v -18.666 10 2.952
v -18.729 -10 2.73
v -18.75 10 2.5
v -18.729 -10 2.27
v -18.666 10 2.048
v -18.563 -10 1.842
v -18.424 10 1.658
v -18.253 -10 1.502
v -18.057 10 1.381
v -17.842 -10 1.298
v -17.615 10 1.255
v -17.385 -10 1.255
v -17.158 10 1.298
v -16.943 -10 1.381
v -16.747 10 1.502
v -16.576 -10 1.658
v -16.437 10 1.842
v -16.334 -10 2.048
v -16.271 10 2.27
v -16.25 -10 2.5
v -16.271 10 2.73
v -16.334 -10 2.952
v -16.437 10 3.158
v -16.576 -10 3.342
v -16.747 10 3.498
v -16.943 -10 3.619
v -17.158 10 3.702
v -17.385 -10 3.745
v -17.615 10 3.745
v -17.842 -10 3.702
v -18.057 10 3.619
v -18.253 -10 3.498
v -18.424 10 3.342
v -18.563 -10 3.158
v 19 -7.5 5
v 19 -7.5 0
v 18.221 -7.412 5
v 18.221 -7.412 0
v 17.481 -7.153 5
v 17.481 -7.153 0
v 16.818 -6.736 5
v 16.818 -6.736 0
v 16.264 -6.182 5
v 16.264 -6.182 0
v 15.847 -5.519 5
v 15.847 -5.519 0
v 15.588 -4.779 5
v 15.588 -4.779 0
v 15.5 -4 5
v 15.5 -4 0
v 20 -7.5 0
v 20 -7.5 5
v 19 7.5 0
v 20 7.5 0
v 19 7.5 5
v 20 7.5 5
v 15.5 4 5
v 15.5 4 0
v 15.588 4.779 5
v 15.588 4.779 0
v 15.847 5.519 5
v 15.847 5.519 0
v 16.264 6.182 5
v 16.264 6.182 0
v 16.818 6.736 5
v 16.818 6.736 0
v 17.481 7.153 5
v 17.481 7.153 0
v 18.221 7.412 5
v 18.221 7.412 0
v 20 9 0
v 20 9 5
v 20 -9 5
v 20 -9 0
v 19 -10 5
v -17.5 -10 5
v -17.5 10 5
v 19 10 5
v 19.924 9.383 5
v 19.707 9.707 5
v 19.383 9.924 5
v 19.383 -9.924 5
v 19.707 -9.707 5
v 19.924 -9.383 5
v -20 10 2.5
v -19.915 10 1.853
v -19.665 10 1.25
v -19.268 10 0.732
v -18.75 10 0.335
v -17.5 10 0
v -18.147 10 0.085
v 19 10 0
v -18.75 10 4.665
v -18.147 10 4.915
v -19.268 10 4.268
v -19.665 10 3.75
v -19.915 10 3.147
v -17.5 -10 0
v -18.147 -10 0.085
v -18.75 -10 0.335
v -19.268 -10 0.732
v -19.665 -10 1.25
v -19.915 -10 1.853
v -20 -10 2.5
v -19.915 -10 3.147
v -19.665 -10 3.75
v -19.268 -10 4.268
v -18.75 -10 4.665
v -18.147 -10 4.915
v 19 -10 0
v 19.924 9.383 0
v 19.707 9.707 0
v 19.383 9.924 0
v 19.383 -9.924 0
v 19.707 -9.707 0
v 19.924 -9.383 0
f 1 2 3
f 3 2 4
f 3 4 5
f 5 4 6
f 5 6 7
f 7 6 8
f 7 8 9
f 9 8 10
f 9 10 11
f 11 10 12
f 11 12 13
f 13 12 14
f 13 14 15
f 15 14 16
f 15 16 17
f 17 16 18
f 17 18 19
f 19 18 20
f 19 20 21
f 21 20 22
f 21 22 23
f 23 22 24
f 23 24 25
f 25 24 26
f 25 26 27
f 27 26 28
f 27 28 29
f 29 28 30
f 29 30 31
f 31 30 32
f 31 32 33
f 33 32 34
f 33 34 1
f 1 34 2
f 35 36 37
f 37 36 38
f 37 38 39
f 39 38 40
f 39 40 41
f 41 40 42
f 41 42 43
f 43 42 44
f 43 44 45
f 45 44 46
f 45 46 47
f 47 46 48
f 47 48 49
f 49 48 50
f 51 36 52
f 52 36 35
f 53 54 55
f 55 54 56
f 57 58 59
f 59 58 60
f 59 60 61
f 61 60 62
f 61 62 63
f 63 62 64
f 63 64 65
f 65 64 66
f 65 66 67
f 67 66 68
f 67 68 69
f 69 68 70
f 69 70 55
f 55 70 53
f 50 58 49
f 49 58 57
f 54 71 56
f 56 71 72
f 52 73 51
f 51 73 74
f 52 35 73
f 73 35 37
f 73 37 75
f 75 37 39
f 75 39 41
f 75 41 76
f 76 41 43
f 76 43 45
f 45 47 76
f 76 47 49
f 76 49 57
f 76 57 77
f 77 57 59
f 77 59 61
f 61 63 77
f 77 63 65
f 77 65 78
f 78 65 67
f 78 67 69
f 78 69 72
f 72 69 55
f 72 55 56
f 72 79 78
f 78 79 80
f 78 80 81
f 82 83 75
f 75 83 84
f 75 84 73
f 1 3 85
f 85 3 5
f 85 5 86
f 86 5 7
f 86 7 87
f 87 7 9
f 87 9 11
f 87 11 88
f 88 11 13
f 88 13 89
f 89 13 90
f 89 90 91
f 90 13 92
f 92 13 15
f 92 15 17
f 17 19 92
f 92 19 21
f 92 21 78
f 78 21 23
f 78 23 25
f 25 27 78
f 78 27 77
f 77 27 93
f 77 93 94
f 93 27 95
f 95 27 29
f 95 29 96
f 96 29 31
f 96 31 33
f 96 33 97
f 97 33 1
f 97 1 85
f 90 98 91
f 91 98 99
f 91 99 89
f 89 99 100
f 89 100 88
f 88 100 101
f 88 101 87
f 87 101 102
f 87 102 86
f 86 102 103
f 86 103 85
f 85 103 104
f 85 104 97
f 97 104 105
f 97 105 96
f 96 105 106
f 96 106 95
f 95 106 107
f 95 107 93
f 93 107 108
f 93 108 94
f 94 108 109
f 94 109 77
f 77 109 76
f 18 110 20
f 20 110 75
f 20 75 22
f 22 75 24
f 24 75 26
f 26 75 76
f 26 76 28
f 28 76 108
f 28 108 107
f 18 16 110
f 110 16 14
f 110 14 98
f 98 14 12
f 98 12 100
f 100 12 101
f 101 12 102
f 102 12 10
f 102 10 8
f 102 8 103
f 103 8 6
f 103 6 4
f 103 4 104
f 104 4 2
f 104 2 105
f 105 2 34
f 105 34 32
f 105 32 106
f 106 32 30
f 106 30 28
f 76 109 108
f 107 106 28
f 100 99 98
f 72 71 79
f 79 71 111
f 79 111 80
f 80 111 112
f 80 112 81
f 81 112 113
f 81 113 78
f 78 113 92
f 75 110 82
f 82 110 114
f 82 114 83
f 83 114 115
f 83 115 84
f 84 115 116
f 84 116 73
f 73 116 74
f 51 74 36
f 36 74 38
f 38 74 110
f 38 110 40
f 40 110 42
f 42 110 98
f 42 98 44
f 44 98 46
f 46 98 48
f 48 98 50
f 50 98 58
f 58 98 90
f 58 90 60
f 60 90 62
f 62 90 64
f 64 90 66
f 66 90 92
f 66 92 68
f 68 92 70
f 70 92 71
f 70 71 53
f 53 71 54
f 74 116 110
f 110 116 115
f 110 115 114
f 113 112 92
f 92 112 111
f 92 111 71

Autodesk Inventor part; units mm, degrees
ref_plane "YZ Plane" through (0, 0, 0) normal (1, 0, 0) x (0, 1, 0)
ref_plane "XZ Plane" through (0, 0, 0) normal (0, 1, 0) x (-1, 0, 0)
ref_plane "XY Plane" through (0, 0, 0) normal (0, 0, 1) x (1, 0, 0)
sketch "Boceto1" plane through (0, 0, 0) normal (0, 0, 1) x (1, 0, 0)
  line L0 (19, -10.5) -> (-20.5, -10.5) projected
  arc A0 (19, -10.5) -> (20.5, -9) centre (19, -9) ccw projected
  line L1 (20.5, 9) -> (20.5, -9) projected
  arc A1 (20.5, 9) -> (19, 10.5) centre (19, 9) ccw projected
  line L2 (-20.5, 10.5) -> (19, 10.5) projected
  line L3 (-20.5, -10.5) -> (-20.5, 10.5) projected
  line L4 (-21, -11) -> (19, -11)
  arc A2 (19, -11) -> (21, -9) centre (19, -9) ccw
  line L5 (21, -9) -> (21, 9)
  arc A3 (21, 9) -> (19, 11) centre (19, 9) ccw
  line L6 (19, 11) -> (-21, 11)
  line L7 (-21, 11) -> (-21, -11)
  spline S0 degree 3 poles (-19.1456, -15) (-19.0838, -15) (-18.9941, -14.9843) (-18.7809, -14.9428) (-18.6401, -14.9132) (-18.3299, -14.8682) (-18.1603, -14.854) (-18, -14.854) (-17.8397, -14.854) (-17.6701, -14.8682) (-17.3599, -14.9132) (-17.2191, -14.9428) (-17.0059, -14.9843) (-16.9162, -15) (-16.8544, -15) knots 0.670558 0.670558 0.670558 0.670558 0.714606 0.714606 0.762709 0.762709 0.810813 0.810813 0.810813 0.858917 0.858917 0.907021 0.907021 0.951069 0.951069 0.951069 0.951069 projected
  line L8 (-16.75, -15) -> (-19.25, -15) projected
  line L9 (-16.75, -15) -> (-19.25, -15) projected
  spline S1 degree 3 poles (-19.1456, -15) (-19.0838, -15) (-18.9941, -14.9843) (-18.7809, -14.9428) (-18.6401, -14.9132) (-18.3299, -14.8682) (-18.1603, -14.854) (-18, -14.854) (-17.8397, -14.854) (-17.6701, -14.8682) (-17.3599, -14.9132) (-17.2191, -14.9428) (-17.0059, -14.9843) (-16.9162, -15) (-16.8544, -15) knots 0.670558 0.670558 0.670558 0.670558 0.714606 0.714606 0.762709 0.762709 0.810813 0.810813 0.810813 0.858917 0.858917 0.907021 0.907021 0.951069 0.951069 0.951069 0.951069 projected
  line L10 (-16.75, -15) -> (-19.25, -15) projected
  line L11 (-18, -15) -> (-18, 10.5)
  line L12 (-18, -10.5) -> (-20, -10.5)
  line L13 (-20, -10.5) -> (-20, 10.5)
  arc A4 (20, 9) -> (19, 10) centre (19, 9) ccw
  line L14 (20, 9) -> (20, -9)
  arc A5 (19, -10) -> (20, -9) centre (19, -9) ccw
  line L15 (19, -10) -> (-20, -10)
  line L16 (-20, -10) -> (-20, 10)
  line L17 (-20, 10) -> (19, 10)
  point P0 (0, 0)
  point P1 (-18, 10)
  point P2 (-20, 10)
  dimension "d0" = 0.5
  dimension "d1" = 2
  dimension "d25" = 0.5
extrude "Extrusión1" add sketch "Boceto1" along normal blind 5 contours L15 L13 L17 L11 | L11 L17 A4 L14 A5 L15
fillet "Empalme1" radius 2.5 2 edges at (-20, 0, 5) (-20, 0, 0)
sketch "Boceto4" plane through (0, 0, 5) normal (0, 0, 1) x (1, 0, 0)
  line L0 (-17.5, -10) -> (-17.5, 10) projected
  line L1 (18.5, 10.5) -> (19, 10.5) projected
  line L2 (18.5, 10.5) -> (18.5, -10.5) projected
  line L3 (19, -10.5) -> (18.5, -10.5) projected
  line L4 (18.5, -10.5) -> (19, -10.5) projected
  line L5 (18.5, 10.5) -> (18.5, -10.5) projected
  line L6 (19, 10.5) -> (18.5, 10.5) projected
  line L7 (20.5, 9) -> (20.5, -9)
  line L8 (25.5, -7.5) -> (19, -7.5)
  line L9 (15.5, -4) -> (15.5, 4)
  line L10 (19, 7.5) -> (25.5, 7.5)
  line L11 (25.5, 7.5) -> (25.5, -7.5)
  line L12 (25.5, -7.5) -> (15.5, 7.5) construction
  line L13 (15.5, -7.5) -> (25.5, 7.5) construction
  arc A0 (19, 7.5) -> (15.5, 4) centre (19, 4) ccw
  arc A1 (15.5, -4) -> (19, -7.5) centre (19, -4) ccw
  line L14 (-17.5, -10) -> (19, -10) projected
  arc A2 (19, -10) -> (20, -9) centre (19, -9) ccw projected
  line L15 (20, -9) -> (20, 9) projected
  arc A3 (20, 9) -> (19, 10) centre (19, 9) ccw projected
  line L16 (19, 10) -> (-17.5, 10) projected
  point P0 (0, 0)
  point P1 (20.5, 0)
  point P2 (20.5, -7.5)
  point P3 (20.5, 7.5)
  point P4 (18.5, -7.4641)
  point P5 (18.5, 7.4641)
  point P6 (20, -7.5)
  point P7 (18.5, -10)
  point P8 (20.5, 7.5)
  point P9 (20.5, -7.5)
  point P10 (18.5, 10)
  point P11 (20, 7.5)
  point P12 (20, 7.5)
  point P13 (20, -7.5)
  dimension "d15" = 10
  dimension "d16" = 15
  dimension "d17" = 3.5
extrude "Extrusión3" cut sketch "Boceto4" against normal blind 10 contours A1 L9 A0 L2 | L2 A0 L10 L15 L8 A1 | L15 L10 L7 L8 | L7 L10 L11 L8
sketch "Boceto6" plane through (19, -10, 0) normal (0, -1, 0) x (1, 0, 0)
  arc A0 (-36.5, 5) -> (-36.5, 0) centre (-36.5, 2.5) ccw projected
  point P0 (-19, 0)
  point P1 (-39, 3)
hole "Agujero2" at (-17.5, -10, 2.5) direction (0, 1, 0) diameter 2.5 end through all
properties part number "Brazo2_2"
